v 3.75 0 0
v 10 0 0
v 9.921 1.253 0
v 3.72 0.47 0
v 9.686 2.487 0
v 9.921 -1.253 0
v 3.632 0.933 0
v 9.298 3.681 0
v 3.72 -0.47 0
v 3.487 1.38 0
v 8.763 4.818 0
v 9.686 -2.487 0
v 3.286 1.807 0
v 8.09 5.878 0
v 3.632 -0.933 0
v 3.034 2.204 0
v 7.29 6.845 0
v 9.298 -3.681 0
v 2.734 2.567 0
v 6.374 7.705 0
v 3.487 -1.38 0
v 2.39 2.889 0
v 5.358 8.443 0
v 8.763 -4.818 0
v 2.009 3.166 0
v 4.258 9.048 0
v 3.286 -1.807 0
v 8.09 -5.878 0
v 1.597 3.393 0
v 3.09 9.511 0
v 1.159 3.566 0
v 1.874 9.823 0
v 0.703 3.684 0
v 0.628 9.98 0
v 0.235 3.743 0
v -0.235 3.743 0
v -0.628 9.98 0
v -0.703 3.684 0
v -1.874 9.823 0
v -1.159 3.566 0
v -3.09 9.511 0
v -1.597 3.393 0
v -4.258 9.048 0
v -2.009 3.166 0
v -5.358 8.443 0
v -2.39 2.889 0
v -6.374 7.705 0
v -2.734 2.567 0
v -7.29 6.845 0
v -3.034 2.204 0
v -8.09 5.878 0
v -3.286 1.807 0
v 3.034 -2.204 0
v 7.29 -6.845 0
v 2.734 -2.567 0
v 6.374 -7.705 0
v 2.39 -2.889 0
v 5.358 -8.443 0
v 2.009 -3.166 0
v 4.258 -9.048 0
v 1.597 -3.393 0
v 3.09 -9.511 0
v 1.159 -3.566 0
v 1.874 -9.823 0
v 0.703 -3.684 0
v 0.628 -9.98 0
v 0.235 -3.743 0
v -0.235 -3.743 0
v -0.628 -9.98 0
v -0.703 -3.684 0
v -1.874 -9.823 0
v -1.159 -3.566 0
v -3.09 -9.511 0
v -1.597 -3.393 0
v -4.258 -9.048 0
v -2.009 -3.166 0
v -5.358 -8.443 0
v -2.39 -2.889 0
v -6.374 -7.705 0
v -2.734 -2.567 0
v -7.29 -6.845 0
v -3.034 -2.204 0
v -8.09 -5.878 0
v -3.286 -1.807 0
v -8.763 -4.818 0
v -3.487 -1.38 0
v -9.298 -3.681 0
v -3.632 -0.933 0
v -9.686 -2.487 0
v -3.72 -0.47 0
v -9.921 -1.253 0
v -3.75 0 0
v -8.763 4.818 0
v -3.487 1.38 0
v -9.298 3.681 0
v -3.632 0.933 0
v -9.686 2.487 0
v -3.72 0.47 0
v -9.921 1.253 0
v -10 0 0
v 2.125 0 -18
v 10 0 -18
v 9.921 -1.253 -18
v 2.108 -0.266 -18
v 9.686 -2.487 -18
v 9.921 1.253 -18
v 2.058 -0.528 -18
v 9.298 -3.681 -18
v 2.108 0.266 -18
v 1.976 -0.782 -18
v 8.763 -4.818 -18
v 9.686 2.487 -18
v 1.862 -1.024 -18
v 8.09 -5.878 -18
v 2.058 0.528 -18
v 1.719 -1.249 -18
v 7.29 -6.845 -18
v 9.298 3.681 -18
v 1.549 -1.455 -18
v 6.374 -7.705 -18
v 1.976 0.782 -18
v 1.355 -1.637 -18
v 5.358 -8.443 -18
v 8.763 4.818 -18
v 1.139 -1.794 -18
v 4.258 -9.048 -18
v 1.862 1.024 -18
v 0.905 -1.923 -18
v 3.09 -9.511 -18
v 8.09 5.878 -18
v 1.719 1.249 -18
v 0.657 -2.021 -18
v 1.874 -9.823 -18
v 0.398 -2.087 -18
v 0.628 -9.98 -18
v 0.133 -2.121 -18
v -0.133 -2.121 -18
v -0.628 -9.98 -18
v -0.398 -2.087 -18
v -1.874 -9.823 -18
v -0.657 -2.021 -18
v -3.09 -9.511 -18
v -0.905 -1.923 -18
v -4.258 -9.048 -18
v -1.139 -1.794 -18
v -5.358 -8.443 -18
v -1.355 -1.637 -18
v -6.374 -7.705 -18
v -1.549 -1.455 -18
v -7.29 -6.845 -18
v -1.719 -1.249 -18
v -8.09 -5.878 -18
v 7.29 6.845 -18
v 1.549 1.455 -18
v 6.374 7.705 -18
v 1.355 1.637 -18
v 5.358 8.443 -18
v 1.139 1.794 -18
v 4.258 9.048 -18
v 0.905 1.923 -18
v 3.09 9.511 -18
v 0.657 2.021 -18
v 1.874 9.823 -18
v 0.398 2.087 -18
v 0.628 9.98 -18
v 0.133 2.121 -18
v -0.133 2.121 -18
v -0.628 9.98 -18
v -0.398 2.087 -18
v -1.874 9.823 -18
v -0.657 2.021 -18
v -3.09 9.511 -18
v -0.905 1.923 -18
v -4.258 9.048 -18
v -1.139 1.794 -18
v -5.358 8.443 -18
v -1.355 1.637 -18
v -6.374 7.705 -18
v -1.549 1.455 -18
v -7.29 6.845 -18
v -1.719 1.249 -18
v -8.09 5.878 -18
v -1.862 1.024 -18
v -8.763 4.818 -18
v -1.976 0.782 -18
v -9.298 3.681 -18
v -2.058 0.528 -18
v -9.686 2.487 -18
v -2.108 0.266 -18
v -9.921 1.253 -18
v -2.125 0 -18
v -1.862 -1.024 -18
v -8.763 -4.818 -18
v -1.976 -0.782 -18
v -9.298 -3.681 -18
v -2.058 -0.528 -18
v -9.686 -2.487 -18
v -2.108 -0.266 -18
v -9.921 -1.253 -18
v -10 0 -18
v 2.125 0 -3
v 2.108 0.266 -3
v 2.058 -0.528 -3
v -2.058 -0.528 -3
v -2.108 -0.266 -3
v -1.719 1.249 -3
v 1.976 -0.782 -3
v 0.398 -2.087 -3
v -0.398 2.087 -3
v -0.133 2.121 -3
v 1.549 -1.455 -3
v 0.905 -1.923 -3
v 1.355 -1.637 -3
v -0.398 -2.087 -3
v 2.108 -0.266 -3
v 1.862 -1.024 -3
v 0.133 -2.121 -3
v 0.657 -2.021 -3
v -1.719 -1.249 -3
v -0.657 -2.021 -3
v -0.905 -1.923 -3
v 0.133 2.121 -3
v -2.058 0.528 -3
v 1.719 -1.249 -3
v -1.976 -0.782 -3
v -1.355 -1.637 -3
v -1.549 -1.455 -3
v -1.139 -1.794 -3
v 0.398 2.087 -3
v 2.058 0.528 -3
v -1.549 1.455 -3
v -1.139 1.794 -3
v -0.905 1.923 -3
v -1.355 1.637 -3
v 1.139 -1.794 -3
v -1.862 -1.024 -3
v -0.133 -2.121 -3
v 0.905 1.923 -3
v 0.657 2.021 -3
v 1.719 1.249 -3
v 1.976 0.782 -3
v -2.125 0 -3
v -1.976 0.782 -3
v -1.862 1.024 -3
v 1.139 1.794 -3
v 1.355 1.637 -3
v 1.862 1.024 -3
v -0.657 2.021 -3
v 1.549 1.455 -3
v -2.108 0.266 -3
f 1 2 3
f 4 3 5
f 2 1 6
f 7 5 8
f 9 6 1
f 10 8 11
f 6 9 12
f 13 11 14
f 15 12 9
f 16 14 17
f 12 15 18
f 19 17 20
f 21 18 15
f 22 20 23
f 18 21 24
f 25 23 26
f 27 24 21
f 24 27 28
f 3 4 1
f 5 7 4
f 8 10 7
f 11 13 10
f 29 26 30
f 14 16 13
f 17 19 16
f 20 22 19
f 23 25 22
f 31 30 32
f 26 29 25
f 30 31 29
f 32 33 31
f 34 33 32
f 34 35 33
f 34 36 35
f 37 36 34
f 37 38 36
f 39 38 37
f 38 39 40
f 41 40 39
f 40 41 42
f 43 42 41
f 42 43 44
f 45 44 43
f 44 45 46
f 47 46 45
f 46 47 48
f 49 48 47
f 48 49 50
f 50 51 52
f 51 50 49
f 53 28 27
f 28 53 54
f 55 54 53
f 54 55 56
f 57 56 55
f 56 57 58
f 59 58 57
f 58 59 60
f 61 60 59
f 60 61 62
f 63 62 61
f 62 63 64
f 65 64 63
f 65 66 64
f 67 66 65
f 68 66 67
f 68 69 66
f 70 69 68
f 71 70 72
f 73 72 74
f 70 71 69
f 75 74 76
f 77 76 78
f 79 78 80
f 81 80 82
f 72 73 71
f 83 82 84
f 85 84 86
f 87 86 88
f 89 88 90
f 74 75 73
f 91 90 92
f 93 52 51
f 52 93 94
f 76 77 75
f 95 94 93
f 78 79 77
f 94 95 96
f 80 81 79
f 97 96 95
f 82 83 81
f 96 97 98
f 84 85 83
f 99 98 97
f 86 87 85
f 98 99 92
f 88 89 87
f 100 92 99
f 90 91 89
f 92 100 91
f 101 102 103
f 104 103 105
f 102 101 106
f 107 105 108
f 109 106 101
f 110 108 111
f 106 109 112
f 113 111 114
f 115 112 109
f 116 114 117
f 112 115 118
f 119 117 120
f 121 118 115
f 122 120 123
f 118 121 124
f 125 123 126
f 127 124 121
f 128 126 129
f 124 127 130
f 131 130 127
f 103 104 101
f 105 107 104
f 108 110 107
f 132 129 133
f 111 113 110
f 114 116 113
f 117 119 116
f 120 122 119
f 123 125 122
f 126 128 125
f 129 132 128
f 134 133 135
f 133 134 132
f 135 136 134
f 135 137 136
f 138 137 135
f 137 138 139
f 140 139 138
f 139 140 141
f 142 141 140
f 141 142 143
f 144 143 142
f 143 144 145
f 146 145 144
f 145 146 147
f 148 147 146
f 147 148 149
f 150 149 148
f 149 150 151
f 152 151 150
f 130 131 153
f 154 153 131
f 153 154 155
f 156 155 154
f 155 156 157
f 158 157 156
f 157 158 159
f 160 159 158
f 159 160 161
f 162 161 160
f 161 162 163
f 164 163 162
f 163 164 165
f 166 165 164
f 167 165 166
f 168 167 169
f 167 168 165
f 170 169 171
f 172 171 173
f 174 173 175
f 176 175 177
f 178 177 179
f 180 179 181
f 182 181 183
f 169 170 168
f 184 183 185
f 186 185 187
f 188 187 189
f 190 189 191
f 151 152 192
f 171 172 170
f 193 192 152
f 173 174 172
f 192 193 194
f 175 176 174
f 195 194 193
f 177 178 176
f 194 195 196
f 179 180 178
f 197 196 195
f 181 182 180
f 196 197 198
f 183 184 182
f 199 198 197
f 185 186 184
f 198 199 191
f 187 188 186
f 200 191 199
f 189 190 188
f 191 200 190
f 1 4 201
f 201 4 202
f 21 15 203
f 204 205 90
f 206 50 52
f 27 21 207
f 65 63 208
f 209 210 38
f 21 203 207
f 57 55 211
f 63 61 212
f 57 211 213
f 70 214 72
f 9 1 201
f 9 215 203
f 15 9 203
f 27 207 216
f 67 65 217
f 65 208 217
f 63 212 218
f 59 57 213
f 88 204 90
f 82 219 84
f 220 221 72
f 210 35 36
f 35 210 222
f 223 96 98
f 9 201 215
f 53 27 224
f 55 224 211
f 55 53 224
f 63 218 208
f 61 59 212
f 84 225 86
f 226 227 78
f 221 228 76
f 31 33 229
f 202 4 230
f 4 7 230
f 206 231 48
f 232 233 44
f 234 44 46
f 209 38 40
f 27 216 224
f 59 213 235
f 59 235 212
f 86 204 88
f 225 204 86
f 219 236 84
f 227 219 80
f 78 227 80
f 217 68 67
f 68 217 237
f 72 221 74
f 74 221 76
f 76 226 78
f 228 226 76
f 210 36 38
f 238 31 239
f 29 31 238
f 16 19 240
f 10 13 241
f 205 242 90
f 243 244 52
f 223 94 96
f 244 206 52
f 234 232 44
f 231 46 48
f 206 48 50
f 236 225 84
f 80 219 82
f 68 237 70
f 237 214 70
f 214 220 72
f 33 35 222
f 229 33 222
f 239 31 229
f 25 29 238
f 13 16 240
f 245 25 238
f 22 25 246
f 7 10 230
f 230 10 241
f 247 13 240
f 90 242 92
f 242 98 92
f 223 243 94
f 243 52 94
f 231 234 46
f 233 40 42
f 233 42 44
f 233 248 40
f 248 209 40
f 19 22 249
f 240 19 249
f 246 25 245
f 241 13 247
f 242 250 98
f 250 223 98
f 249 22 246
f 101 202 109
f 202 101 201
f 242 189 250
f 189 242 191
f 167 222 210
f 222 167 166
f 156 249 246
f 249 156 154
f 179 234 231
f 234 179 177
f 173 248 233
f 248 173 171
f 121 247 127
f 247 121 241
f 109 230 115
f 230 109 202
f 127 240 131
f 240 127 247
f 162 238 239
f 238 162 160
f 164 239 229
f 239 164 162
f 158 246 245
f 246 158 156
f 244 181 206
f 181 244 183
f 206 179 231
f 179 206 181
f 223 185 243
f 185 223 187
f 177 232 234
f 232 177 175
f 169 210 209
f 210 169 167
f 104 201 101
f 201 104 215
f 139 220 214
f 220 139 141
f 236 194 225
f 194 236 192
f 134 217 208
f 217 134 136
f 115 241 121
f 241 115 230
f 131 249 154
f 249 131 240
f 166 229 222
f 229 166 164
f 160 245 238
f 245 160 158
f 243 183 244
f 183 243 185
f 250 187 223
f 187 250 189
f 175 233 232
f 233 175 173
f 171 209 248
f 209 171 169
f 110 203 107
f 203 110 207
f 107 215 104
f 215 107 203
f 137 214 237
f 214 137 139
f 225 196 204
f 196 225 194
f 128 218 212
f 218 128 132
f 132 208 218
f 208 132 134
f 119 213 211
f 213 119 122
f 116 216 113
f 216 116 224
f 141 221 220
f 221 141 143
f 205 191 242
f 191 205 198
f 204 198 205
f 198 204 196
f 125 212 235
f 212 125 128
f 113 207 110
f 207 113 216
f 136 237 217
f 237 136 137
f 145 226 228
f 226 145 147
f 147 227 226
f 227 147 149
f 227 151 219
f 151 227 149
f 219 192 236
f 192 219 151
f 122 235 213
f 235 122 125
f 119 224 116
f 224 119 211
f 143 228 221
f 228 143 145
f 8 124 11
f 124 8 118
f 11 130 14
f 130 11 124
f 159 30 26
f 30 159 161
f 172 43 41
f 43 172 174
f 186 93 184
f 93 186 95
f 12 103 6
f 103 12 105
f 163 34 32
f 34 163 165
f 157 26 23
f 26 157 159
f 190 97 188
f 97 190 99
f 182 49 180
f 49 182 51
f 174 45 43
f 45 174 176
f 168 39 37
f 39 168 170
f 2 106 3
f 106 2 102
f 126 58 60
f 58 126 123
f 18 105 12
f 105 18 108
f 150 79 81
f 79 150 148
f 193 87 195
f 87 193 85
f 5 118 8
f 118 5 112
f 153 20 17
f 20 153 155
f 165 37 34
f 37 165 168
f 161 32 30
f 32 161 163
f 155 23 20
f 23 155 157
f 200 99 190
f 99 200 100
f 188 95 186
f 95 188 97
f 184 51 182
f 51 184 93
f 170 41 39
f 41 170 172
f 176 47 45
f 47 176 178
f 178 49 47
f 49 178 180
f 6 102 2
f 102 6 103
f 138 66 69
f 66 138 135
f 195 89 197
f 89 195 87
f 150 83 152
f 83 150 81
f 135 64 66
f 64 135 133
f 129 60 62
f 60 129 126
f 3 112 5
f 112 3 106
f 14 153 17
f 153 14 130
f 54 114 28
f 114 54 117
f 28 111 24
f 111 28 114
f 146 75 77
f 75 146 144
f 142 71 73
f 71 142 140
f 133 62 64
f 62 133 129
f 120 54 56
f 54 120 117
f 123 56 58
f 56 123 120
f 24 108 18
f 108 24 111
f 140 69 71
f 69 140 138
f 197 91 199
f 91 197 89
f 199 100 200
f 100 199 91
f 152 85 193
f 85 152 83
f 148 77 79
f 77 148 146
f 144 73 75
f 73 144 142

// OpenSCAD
$fn = 50;


difference() {
	union() {
		translate(v = [0, 0, -18.0000000000]) {
			cylinder(h = 18, r = 10.0000000000);
		}
		cylinder(h = 0, r = 16.0000000000);
	}
	union() {
		translate(v = [0, 0, 0]) {
			rotate(a = [0, 0, 0]) {
				difference() {
					union() {
						#translate(v = [0, 0, -18.0000000000]) {
							cylinder(h = 18, r = 2.0000000000);
						}
						#translate(v = [0, 0, -3]) {
							cylinder(h = 3, r1 = 2.1250000000, r2 = 3.7500000000);
						}
						#translate(v = [0, 0, -18.0000000000]) {
							cylinder(h = 18, r = 2.1250000000);
						}
						#translate(v = [0, 0, -18.0000000000]) {
							cylinder(h = 18, r = 2.0000000000);
						}
					}
					union();
				}
			}
		}
	}
}
